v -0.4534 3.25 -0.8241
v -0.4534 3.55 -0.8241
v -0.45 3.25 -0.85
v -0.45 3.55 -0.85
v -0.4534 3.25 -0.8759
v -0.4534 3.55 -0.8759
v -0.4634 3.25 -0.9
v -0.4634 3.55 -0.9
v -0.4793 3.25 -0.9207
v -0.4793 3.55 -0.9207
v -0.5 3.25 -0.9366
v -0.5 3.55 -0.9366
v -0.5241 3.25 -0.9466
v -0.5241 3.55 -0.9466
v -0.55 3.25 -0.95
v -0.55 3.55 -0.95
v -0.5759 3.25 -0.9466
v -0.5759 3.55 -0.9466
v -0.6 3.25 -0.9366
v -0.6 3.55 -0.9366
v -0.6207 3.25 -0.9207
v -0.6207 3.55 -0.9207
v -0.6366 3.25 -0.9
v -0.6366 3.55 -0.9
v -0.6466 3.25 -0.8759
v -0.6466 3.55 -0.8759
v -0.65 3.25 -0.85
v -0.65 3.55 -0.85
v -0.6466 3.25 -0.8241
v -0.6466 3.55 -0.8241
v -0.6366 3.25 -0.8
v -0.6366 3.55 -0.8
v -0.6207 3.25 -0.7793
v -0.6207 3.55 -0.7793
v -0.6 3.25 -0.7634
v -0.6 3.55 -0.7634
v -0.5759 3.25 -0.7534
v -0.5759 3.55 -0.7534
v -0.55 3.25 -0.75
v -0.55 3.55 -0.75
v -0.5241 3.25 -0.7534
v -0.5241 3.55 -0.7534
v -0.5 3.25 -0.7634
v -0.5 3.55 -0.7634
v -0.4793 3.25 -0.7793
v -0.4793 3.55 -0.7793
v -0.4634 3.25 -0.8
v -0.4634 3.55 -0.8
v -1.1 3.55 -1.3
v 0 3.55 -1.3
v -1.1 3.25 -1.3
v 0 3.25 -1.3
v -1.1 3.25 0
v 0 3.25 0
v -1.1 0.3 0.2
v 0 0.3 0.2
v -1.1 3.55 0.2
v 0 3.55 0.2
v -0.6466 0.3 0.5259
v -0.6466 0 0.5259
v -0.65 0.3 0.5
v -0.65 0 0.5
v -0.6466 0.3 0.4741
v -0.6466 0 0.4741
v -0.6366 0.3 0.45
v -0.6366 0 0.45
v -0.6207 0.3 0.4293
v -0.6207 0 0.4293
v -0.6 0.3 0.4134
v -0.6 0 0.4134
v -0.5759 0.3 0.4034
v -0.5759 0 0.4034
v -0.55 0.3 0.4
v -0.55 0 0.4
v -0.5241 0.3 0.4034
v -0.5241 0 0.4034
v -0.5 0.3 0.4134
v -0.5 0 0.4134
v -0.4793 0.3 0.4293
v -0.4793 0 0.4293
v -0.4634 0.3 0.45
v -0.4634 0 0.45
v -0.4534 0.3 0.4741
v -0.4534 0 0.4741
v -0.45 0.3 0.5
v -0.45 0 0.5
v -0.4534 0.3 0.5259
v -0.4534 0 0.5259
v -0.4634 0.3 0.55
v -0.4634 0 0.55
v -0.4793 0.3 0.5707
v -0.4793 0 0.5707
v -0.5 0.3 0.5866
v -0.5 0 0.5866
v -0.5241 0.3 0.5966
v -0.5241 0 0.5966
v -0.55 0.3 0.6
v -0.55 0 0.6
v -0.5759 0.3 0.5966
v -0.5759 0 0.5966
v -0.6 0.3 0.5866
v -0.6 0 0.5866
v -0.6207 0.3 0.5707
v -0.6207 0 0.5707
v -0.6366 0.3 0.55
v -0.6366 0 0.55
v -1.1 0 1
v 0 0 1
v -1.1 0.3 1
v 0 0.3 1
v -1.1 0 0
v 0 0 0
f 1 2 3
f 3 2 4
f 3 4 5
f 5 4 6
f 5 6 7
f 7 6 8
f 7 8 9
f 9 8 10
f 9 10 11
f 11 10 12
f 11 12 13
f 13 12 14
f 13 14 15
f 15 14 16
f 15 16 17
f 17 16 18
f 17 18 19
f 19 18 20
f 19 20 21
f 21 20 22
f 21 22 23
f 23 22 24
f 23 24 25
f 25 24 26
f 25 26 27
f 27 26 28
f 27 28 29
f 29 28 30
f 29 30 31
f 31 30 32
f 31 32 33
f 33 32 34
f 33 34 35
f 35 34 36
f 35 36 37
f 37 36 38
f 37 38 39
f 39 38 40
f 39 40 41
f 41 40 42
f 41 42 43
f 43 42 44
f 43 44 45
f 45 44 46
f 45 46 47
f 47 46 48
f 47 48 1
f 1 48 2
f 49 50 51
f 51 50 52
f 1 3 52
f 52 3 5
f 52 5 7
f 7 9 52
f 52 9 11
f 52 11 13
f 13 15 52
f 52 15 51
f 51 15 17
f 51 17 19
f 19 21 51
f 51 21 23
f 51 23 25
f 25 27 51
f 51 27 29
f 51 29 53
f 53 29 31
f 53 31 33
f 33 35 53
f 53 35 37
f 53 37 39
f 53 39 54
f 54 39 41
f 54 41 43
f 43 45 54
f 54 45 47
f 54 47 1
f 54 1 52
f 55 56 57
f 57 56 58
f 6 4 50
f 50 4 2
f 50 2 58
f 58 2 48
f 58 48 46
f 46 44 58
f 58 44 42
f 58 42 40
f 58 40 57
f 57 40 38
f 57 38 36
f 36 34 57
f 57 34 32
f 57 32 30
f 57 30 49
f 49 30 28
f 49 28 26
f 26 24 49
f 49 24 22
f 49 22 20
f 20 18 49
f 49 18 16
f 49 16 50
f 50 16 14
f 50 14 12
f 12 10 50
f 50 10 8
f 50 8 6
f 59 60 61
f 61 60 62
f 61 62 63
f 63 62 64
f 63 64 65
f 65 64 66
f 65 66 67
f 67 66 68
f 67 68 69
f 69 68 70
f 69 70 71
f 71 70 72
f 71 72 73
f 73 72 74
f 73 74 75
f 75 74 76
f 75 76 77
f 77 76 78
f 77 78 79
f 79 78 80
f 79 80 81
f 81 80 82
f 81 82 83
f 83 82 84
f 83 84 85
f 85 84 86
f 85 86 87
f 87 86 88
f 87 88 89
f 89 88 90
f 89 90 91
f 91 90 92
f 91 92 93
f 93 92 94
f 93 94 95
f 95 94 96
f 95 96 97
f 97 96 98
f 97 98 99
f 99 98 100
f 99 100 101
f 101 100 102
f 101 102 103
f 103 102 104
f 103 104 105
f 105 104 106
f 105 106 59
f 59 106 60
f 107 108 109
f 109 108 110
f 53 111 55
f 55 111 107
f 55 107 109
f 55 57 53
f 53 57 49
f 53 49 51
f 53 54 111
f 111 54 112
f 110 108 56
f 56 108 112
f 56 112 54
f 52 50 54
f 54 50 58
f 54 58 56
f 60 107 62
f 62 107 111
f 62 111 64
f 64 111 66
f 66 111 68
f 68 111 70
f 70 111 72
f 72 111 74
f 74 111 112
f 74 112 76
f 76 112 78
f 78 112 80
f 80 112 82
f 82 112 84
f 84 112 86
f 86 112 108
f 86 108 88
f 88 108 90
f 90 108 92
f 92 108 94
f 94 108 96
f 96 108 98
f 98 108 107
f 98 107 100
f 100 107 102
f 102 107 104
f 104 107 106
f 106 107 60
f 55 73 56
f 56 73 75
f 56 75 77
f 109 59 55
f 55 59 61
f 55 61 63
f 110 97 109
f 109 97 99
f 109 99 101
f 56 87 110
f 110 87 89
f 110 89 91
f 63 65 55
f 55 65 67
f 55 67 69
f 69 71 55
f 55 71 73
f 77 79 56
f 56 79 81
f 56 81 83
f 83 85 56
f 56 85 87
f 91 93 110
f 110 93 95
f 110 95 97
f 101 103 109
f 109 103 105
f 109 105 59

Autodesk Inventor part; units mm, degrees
ref_plane "YZ Plane" through (0, 0, 0) normal (1, 0, 0) x (0, 1, 0)
ref_plane "XZ Plane" through (0, 0, 0) normal (0, 1, 0) x (-1, 0, 0)
ref_plane "XY Plane" through (0, 0, 0) normal (0, 0, 1) x (1, 0, 0)
sketch "Boceto1" plane through (0, 0, 0) normal (0, 1, 0) x (-1, 0, 0)
  line L0 (0, 0) -> (0, 1)
  line L1 (0, 1) -> (1.1, 1)
  line L2 (1.1, 1) -> (1.1, 0)
  line L3 (1.1, 0) -> (0, 0)
  circle A0 centre (0.55, 0.5) radius 0.1
  dimension "d0" = 1
  dimension "d1" = 1.1
  dimension "d2" = 0.2
extrude "Extrusión1" add sketch "Boceto1" along normal blind 0.3
sketch "Boceto2" plane through (0, 0.3, 0) normal (0, 1, 0) x (1, 0, 0)
  line L0 (0, -1) -> (0, 0) projected
  line L1 (0, 0) -> (0, -0.2)
  line L2 (0, -0.2) -> (-1.1, -0.2)
  line L3 (-1.1, 0) -> (-1.1, -1) projected
  line L4 (-1.1, -0.2) -> (0, -0.2)
  line L5 (0, -0.2) -> (0, 0)
  line L6 (0, 0) -> (-1.1, 0)
  line L7 (-1.1, 0) -> (-1.1, -0.2)
  dimension "d5" = 0.2
extrude "Extrusión2" add sketch "Boceto2" along normal blind 3.25
sketch "Boceto4" plane through (0, 3.55, 0) normal (0, 1, 0) x (1, 0, 0)
  circle A0 centre (-0.55, -0.5) radius 0.1 projected
  line L0 (0, 0) -> (-1.1, 0) projected
  line L1 (-1.1, 0) -> (-1.1, 1.3)
  line L2 (-1.1, 1.3) -> (0, 1.3)
  line L3 (0, 0) -> (0, -1) projected
  line L4 (0, 1.3) -> (0, 0)
  line L5 (0, 0) -> (-1.1, 0)
  circle A1 centre (-0.55, 0.85) radius 0.1
  dimension "d12" = 1.3
  dimension "d18" = 0.2
extrude "Extrusión4" add sketch "Boceto4" against normal blind 0.3 contours L0 L1 L2 L4
properties part number "soporteOdroid"
